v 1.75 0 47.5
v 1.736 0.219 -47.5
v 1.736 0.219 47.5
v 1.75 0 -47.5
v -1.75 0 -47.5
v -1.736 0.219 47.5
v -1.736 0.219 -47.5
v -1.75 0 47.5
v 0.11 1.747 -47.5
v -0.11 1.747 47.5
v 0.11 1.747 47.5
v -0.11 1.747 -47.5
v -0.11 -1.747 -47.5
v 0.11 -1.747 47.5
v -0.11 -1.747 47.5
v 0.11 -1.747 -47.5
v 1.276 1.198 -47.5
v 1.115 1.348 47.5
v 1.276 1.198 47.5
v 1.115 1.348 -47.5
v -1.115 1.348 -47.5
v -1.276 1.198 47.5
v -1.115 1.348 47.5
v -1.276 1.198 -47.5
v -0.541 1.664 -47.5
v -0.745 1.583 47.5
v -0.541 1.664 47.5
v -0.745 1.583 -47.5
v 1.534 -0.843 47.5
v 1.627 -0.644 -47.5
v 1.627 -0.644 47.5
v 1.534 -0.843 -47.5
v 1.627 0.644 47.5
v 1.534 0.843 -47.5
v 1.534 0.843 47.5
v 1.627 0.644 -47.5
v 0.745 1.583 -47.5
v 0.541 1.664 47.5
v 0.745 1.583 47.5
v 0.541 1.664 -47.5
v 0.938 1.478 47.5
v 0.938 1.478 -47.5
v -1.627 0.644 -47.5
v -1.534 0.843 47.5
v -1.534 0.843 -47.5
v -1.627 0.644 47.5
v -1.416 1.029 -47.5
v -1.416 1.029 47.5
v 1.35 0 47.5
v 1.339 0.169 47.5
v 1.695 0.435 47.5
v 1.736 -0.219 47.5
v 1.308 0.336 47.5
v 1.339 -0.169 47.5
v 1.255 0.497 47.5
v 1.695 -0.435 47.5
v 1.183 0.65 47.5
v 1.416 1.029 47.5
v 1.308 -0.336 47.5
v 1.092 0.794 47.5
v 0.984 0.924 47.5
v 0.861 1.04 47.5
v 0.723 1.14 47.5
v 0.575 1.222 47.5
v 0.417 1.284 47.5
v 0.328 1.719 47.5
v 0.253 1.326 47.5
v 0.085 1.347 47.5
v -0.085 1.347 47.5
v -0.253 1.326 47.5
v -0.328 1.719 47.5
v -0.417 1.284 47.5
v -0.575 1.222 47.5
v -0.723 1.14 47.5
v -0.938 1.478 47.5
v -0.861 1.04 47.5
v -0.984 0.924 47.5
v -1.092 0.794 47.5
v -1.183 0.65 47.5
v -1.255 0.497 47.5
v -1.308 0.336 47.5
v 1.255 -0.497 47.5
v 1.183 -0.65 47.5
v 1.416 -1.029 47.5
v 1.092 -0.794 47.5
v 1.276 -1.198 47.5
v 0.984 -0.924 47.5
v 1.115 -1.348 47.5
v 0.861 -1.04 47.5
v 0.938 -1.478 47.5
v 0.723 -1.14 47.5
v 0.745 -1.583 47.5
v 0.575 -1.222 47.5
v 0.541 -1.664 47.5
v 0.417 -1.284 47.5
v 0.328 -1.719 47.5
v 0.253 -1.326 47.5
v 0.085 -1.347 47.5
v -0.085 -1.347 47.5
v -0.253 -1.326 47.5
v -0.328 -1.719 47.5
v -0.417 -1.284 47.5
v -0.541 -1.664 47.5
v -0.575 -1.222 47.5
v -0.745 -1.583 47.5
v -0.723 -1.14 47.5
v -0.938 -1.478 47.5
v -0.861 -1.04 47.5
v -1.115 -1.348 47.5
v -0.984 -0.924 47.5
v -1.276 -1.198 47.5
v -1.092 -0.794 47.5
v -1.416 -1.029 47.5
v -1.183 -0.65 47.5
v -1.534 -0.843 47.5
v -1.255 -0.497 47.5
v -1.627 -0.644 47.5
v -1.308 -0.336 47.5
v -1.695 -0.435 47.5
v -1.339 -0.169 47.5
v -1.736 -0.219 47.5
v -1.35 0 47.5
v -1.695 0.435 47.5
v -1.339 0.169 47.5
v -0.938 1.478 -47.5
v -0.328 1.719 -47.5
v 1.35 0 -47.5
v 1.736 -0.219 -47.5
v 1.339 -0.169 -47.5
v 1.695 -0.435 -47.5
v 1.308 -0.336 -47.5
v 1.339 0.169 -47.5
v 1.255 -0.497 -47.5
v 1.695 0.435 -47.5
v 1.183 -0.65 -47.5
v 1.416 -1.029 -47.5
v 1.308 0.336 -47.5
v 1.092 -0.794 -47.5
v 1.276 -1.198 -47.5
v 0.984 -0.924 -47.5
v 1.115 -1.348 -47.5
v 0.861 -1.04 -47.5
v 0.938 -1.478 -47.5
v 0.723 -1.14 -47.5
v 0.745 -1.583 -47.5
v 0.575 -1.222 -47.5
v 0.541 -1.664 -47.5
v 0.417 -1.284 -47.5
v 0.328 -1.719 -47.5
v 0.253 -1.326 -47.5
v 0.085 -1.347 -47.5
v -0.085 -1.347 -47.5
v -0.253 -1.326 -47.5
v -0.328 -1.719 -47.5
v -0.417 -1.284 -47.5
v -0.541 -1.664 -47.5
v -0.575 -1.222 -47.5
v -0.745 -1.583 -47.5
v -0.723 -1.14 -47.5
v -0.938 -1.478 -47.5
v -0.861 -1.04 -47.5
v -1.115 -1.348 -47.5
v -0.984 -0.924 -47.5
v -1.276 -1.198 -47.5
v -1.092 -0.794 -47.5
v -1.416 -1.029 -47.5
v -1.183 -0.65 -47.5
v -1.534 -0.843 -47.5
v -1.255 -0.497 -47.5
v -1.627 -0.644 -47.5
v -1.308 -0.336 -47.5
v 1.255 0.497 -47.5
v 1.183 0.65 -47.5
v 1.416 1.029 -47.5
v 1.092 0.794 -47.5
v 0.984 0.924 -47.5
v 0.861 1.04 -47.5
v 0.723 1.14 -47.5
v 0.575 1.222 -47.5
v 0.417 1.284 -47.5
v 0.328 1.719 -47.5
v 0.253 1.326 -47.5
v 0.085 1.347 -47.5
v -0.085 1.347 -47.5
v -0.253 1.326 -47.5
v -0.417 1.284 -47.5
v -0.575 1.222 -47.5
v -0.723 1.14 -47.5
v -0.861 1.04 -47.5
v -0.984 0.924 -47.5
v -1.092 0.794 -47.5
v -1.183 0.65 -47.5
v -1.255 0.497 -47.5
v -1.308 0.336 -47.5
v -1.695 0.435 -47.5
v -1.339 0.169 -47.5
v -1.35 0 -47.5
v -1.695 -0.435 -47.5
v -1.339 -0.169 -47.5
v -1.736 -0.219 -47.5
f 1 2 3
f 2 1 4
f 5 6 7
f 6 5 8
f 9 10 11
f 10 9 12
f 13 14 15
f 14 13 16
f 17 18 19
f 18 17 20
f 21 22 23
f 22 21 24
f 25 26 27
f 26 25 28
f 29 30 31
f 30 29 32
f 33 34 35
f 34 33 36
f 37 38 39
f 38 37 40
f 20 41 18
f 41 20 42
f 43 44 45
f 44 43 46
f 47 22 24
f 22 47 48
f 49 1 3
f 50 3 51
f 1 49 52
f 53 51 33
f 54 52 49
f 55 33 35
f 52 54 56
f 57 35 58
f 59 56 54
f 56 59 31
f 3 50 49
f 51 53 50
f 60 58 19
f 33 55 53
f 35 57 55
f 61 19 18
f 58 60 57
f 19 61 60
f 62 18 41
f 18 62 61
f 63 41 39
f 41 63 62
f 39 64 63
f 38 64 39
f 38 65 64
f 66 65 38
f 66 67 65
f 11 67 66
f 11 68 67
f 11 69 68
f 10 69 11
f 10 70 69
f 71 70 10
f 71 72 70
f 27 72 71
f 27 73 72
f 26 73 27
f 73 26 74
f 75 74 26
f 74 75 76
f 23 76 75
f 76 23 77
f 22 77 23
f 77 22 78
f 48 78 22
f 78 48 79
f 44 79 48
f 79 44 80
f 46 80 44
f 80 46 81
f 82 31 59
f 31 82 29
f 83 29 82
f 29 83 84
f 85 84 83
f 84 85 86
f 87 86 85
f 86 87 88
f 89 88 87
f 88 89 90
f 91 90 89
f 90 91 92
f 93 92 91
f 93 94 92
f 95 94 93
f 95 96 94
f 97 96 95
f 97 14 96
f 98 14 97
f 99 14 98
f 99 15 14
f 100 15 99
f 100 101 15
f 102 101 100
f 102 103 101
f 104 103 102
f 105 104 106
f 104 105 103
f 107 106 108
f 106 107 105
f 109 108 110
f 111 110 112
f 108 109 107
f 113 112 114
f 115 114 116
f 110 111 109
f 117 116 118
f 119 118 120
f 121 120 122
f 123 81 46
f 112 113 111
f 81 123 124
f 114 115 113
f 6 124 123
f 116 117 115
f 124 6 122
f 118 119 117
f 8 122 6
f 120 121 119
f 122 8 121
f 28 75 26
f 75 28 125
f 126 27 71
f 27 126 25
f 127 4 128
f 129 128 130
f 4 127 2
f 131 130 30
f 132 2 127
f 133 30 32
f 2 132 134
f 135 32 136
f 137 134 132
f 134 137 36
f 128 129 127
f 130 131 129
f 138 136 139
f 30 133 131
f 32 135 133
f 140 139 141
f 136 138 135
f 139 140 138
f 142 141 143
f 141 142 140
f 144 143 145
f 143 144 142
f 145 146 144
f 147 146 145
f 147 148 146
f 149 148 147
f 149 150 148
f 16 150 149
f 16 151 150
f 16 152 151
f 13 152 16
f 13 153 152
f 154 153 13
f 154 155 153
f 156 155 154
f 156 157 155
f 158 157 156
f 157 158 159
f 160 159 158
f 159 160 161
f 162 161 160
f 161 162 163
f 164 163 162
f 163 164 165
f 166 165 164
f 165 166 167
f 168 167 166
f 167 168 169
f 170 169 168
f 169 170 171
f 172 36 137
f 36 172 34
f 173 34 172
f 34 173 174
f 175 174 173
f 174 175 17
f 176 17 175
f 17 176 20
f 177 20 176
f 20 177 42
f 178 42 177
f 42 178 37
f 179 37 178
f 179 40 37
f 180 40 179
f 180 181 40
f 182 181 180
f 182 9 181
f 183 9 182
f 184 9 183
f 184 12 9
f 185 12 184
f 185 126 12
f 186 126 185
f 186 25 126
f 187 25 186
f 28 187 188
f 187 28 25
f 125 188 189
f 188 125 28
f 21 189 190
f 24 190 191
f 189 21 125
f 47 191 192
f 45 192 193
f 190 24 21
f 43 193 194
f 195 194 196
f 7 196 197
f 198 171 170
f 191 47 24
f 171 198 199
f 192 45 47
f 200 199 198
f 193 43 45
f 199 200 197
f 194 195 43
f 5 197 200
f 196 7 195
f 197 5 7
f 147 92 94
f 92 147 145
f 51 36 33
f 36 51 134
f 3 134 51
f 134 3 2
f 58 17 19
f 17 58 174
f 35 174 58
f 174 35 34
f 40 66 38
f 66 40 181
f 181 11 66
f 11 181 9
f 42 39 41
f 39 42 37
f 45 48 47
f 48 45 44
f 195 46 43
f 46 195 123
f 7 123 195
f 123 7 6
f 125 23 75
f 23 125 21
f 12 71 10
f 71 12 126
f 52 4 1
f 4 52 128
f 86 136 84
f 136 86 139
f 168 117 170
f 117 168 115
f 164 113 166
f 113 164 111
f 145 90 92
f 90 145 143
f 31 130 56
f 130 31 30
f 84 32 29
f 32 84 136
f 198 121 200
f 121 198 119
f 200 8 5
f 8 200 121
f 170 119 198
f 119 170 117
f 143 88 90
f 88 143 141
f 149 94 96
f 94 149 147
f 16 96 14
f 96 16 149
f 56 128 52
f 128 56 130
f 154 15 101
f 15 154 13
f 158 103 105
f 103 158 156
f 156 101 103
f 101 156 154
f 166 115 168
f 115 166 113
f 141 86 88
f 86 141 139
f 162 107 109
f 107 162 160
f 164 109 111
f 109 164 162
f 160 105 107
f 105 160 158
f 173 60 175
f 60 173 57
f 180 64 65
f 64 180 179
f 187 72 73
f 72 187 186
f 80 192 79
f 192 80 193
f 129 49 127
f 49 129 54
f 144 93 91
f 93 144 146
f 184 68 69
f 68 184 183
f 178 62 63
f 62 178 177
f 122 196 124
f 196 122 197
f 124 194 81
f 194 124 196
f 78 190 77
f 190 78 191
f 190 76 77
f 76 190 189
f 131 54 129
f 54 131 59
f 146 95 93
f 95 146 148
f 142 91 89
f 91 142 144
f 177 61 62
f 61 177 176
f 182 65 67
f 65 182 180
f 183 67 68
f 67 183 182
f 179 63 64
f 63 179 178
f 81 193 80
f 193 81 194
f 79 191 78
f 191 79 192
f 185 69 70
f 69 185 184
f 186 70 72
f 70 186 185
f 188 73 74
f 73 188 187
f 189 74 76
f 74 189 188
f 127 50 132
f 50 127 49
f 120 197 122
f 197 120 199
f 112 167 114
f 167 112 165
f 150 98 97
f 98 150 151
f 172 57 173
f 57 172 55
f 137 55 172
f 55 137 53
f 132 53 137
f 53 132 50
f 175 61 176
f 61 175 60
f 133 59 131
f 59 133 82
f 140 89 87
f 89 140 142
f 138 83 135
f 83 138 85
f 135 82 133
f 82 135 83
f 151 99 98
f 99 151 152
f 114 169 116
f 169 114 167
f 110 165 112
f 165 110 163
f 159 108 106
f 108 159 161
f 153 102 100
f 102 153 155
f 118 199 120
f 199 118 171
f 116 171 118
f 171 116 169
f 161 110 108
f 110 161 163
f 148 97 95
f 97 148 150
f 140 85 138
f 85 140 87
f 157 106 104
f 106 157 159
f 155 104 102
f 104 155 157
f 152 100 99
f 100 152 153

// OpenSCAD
$fn = 50;


difference() {
	union() {
		translate(v = [0, 0, -47.5000000000]) {
			cylinder(h = 95, r = 1.7500000000);
		}
	}
	union() {
		translate(v = [0, 0, -100.0000000000]) {
			cylinder(h = 200, r = 1.3500000000);
		}
	}
}
